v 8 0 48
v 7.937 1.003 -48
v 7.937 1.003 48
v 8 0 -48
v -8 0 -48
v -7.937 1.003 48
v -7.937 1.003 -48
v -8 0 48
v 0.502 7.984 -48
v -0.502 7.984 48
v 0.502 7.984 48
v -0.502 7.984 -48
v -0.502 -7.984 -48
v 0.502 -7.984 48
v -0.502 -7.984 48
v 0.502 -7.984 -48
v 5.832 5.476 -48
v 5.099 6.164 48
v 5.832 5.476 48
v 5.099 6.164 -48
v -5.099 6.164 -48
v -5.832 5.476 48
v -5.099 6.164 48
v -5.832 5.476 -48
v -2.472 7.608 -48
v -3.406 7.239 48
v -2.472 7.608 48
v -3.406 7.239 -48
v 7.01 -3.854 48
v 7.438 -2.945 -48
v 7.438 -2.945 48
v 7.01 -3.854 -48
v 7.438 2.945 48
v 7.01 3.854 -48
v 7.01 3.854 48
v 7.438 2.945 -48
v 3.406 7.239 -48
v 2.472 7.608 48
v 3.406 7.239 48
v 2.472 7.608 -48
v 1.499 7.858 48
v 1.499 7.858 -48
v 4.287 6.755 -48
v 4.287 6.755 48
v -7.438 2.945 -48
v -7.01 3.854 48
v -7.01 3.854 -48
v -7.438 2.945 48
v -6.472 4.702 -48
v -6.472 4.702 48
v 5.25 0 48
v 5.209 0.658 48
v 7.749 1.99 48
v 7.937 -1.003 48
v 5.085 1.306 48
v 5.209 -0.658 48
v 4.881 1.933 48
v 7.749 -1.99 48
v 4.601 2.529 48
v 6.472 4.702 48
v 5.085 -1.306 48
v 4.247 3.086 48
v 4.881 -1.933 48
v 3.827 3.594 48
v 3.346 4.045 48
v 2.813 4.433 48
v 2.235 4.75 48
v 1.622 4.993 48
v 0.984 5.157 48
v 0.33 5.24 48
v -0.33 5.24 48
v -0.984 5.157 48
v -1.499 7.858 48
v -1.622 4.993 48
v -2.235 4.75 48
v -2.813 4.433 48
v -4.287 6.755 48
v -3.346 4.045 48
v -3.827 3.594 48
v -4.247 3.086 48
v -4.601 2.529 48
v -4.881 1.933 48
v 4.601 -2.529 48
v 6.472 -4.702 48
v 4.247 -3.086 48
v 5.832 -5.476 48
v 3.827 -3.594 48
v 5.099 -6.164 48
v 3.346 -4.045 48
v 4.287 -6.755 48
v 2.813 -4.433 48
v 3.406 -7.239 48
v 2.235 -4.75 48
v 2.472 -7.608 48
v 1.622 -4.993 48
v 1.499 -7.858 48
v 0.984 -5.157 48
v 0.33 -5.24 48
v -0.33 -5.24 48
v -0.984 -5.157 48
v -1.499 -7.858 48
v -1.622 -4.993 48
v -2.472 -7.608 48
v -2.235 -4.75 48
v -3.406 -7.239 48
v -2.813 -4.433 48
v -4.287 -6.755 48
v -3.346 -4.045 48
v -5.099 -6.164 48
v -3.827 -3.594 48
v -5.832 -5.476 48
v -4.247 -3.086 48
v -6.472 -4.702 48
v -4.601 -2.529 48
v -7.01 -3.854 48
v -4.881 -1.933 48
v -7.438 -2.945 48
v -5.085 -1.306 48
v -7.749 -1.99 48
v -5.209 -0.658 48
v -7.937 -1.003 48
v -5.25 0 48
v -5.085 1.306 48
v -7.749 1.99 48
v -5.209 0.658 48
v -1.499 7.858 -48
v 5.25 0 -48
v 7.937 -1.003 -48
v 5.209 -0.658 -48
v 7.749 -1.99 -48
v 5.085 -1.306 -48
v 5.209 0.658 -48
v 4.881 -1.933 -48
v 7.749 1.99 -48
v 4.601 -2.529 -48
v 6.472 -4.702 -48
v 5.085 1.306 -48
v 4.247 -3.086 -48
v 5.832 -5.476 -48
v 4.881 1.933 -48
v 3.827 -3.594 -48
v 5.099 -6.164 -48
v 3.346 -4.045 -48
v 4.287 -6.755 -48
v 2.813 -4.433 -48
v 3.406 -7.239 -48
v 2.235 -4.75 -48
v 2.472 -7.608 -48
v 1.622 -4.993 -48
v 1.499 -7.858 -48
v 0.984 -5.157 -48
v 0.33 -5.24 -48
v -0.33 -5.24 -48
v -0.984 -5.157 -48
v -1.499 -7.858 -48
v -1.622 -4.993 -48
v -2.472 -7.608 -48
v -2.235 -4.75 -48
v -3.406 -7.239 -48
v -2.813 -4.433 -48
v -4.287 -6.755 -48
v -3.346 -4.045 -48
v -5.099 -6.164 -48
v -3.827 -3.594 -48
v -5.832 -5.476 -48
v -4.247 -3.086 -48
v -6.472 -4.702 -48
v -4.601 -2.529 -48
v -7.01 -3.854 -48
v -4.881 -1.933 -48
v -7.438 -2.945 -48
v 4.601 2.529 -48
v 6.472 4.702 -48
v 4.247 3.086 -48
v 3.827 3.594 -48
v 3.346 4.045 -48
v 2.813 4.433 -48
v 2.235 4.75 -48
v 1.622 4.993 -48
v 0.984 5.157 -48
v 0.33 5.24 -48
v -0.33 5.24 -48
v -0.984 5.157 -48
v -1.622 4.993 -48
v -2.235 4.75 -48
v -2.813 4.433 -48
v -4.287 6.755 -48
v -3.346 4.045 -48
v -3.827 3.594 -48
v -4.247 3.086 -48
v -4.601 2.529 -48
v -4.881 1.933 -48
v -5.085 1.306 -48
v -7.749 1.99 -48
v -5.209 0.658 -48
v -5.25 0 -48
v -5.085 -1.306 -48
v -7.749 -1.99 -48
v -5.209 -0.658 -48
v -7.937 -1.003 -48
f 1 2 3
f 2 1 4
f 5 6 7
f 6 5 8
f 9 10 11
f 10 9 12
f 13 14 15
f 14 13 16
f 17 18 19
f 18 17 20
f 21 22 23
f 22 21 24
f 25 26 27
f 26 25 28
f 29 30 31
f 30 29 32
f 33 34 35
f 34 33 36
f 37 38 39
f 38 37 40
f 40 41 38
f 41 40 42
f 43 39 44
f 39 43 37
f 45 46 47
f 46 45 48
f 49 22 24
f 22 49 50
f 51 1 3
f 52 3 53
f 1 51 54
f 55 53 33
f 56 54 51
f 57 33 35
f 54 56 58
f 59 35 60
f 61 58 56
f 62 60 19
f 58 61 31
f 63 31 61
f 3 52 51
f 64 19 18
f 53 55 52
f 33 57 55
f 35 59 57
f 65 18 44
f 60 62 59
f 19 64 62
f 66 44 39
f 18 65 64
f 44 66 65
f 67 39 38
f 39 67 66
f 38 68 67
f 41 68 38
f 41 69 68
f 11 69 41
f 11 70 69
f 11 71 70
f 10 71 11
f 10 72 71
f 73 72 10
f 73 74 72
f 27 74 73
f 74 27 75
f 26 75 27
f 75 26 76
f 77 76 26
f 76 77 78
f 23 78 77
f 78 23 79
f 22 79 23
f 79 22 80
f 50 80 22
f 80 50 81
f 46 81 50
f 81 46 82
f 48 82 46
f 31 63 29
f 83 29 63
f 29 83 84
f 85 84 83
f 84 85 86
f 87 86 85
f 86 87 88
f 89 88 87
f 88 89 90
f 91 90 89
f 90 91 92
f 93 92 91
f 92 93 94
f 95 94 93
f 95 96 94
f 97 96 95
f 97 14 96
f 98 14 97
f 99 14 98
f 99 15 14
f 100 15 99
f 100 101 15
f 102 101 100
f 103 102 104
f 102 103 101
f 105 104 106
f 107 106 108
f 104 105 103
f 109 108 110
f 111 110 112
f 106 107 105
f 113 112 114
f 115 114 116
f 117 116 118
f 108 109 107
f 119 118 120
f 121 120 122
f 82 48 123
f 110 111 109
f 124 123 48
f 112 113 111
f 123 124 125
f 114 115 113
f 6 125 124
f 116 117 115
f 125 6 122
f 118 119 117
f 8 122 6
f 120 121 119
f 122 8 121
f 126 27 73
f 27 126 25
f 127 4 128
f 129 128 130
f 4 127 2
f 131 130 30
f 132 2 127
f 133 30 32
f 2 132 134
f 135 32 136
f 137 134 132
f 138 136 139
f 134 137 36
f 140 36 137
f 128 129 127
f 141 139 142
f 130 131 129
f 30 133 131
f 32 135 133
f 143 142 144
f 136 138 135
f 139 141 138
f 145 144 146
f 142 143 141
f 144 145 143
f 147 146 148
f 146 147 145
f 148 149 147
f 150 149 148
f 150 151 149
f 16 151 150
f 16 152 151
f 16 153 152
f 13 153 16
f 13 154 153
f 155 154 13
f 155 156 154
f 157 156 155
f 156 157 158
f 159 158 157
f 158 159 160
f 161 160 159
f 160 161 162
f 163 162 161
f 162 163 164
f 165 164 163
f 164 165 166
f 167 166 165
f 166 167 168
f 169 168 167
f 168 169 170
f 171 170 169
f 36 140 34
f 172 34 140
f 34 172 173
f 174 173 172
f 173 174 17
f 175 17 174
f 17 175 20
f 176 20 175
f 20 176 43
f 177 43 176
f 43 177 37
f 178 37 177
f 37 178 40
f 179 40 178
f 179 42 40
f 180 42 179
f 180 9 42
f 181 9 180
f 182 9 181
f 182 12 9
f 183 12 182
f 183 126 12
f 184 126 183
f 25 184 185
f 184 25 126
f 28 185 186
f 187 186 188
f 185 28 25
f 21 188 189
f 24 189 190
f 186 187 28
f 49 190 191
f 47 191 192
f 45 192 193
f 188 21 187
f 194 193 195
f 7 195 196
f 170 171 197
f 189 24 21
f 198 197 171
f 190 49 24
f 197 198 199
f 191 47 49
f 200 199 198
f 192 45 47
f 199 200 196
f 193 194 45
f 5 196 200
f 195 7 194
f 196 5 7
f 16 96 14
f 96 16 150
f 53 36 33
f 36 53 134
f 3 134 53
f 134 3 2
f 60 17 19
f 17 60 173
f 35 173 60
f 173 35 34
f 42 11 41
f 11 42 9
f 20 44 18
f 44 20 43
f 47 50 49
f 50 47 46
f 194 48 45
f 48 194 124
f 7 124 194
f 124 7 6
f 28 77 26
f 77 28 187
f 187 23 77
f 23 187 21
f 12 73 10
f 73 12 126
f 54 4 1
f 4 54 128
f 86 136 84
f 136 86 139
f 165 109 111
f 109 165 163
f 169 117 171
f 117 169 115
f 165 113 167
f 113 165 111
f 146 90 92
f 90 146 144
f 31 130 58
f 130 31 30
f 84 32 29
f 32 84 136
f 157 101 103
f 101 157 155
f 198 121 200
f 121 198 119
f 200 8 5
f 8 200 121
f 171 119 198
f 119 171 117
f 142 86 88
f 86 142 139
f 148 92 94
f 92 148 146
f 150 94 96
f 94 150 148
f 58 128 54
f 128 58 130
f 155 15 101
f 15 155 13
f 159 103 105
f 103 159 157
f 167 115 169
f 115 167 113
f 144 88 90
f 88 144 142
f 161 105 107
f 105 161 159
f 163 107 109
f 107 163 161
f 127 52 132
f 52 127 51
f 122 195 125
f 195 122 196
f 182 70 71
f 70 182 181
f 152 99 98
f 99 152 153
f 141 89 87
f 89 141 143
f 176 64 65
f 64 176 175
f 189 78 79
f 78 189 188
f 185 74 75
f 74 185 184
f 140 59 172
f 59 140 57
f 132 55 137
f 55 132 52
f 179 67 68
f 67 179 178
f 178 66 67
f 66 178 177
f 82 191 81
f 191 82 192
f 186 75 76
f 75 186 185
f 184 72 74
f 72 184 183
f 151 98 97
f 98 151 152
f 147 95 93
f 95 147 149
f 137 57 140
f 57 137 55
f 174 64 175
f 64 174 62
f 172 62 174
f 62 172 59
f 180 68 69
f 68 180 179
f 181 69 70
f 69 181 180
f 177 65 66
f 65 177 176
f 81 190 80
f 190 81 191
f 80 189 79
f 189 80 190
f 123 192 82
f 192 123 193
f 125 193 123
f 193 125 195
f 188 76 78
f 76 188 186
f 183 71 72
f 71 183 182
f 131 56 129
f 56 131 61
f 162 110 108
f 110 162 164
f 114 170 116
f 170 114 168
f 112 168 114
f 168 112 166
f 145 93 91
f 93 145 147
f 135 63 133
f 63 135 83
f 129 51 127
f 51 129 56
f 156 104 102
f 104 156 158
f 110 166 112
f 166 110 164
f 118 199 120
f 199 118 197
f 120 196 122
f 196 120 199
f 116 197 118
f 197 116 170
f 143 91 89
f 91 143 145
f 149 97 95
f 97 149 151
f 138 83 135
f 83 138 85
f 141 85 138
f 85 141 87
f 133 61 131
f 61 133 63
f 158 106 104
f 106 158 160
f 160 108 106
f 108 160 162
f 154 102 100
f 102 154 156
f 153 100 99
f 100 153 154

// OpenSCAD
$fn = 50;


difference() {
	union() {
		translate(v = [0, 0, -48.0000000000]) {
			cylinder(h = 96, r = 8.0000000000);
		}
	}
	union() {
		translate(v = [0, 0, -100.0000000000]) {
			cylinder(h = 200, r = 5.2500000000);
		}
	}
}
